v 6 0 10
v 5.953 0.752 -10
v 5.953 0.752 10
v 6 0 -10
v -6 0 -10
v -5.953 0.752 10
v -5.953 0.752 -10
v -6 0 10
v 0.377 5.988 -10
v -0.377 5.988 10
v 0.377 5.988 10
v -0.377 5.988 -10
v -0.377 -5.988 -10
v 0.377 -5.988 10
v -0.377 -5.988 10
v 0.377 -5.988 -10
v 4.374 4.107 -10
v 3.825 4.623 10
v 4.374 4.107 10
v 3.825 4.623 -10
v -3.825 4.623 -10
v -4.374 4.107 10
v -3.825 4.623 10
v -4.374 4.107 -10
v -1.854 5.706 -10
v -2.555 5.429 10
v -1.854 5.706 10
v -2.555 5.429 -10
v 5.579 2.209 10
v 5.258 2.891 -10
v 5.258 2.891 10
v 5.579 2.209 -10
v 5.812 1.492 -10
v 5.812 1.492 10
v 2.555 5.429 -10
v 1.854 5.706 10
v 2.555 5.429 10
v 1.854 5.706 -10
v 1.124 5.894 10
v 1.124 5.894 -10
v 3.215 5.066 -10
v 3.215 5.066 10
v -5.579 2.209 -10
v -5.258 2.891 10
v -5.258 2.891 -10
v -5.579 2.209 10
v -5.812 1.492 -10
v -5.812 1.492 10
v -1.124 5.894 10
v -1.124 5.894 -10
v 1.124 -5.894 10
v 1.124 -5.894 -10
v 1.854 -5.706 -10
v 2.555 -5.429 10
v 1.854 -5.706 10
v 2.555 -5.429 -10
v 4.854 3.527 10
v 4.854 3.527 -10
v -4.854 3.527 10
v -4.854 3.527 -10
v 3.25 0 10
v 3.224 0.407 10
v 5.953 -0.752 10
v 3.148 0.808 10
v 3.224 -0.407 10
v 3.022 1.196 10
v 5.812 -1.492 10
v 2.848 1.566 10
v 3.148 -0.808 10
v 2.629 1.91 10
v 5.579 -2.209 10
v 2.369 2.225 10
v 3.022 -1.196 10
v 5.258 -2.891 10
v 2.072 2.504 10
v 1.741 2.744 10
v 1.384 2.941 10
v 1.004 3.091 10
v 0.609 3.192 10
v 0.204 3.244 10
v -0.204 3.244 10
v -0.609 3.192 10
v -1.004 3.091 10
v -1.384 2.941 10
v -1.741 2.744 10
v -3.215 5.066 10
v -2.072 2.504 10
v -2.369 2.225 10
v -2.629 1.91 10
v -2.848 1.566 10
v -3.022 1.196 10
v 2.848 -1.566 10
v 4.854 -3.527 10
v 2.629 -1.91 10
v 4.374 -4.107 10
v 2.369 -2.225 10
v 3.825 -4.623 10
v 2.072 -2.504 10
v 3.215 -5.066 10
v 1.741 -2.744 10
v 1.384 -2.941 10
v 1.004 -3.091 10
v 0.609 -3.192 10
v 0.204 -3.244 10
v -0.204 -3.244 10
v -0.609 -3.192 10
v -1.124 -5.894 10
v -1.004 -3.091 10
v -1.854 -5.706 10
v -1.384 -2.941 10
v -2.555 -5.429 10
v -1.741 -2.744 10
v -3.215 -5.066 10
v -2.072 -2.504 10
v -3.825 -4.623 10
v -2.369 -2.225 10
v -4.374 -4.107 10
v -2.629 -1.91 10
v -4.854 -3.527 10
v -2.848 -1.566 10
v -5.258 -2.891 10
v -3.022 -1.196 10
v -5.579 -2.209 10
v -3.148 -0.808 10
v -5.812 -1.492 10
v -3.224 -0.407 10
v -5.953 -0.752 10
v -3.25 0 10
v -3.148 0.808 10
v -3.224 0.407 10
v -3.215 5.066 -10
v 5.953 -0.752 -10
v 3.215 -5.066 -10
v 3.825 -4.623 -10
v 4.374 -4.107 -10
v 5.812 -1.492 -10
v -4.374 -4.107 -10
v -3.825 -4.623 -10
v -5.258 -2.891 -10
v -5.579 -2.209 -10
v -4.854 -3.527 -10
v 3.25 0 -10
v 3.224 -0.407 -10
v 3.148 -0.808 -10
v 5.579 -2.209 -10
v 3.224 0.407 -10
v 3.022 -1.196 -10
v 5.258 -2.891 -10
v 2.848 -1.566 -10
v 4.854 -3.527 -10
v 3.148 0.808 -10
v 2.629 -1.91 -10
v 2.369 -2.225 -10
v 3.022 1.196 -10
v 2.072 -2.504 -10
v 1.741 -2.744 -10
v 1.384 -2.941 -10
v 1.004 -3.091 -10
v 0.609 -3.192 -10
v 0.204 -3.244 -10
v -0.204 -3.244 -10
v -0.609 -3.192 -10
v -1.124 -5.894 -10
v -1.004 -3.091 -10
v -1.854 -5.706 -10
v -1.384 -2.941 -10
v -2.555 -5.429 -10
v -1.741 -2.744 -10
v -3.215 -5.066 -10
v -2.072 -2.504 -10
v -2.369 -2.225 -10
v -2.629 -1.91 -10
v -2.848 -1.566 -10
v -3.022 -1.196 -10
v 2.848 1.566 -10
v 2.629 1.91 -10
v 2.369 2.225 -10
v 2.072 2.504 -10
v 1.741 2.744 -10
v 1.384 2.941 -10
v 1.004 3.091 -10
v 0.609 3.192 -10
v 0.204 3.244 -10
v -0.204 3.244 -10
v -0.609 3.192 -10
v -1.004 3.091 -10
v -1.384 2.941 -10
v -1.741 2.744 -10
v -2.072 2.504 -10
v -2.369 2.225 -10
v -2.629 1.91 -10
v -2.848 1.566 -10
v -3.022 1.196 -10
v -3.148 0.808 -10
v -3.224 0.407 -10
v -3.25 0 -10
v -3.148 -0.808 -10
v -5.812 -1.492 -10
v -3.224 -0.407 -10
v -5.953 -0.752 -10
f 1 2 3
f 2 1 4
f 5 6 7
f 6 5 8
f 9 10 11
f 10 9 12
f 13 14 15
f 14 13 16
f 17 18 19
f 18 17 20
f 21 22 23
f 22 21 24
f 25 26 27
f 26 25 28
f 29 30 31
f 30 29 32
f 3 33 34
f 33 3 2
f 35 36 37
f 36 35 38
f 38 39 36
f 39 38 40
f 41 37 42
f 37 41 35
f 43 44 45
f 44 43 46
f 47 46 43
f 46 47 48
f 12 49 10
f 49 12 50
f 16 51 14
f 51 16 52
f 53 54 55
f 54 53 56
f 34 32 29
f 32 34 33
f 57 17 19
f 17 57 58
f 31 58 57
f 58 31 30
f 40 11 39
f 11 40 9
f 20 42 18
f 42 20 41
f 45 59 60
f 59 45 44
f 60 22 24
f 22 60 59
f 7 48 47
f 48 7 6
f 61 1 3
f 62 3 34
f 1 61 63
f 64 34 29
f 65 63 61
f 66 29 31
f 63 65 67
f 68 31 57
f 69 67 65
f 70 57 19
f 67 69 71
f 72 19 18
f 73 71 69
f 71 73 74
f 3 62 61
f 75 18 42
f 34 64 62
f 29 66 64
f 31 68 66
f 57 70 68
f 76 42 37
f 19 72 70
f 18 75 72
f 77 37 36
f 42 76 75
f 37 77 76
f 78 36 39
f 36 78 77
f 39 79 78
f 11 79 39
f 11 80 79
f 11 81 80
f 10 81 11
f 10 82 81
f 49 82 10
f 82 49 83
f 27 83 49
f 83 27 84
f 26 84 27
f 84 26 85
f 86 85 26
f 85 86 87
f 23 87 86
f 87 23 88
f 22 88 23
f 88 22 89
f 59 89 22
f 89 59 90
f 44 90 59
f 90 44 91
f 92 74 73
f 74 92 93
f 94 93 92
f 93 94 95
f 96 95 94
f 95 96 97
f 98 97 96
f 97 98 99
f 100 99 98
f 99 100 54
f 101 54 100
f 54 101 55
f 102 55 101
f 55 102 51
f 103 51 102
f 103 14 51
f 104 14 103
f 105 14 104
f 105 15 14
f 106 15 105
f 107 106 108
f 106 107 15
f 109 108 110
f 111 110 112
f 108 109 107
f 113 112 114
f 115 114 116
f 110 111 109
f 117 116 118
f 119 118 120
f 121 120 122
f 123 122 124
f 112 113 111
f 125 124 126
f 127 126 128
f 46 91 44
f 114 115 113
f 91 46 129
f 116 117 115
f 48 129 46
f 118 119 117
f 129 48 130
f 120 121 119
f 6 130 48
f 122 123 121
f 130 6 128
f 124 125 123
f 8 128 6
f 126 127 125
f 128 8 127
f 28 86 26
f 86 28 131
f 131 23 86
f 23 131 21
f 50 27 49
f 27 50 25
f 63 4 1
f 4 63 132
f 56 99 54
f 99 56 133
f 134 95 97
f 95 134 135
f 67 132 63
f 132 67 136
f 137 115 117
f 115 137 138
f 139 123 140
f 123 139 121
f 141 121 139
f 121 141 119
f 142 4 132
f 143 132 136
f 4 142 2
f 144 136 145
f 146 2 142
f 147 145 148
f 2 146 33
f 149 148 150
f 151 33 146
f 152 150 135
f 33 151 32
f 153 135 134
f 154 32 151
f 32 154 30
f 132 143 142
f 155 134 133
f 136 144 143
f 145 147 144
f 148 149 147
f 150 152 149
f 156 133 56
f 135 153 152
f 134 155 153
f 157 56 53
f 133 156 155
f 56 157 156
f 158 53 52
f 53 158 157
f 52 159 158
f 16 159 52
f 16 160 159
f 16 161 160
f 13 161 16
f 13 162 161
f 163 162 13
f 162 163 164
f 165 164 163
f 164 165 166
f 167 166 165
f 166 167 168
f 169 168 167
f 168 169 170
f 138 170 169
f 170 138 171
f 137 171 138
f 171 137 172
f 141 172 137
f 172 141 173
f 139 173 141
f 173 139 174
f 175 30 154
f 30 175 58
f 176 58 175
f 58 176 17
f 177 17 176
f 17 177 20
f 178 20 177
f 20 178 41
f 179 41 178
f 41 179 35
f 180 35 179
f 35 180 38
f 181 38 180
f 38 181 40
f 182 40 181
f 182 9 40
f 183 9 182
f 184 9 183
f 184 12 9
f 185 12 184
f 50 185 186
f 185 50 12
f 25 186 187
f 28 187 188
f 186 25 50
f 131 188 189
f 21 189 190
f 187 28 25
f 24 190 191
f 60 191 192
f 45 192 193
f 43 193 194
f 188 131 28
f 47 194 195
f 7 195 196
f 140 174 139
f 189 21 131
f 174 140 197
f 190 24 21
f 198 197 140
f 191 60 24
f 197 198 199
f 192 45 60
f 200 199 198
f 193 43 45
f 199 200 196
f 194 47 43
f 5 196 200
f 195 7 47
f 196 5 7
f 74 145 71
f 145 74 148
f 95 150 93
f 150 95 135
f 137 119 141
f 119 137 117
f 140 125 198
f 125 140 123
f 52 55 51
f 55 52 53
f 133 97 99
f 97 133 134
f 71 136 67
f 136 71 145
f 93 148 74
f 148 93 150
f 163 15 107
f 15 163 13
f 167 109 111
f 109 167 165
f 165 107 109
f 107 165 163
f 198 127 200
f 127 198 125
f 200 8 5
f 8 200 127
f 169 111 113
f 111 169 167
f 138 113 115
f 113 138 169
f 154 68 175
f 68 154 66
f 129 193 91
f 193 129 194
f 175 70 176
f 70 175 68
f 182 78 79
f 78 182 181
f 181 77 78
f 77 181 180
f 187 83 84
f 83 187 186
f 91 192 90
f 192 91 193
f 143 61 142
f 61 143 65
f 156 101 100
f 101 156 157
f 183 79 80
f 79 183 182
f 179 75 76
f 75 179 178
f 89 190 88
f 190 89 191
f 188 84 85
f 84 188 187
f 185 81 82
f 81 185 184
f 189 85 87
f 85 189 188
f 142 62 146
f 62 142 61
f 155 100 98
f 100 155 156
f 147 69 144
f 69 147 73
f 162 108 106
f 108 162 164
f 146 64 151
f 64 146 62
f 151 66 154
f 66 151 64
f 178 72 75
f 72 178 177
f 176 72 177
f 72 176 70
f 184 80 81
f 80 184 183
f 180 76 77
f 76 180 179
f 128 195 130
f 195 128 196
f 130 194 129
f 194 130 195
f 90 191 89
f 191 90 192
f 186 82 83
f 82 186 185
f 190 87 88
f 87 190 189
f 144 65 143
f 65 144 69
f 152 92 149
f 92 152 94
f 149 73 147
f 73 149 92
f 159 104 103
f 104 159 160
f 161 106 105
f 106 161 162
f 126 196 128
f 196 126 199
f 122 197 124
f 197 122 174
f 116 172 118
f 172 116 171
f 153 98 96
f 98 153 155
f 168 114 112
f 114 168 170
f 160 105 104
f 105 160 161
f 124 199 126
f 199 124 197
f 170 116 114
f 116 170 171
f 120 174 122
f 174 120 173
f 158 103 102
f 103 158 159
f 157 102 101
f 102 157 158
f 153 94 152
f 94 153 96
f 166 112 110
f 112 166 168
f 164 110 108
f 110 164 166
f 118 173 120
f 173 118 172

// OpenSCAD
$fn = 50;


difference() {
	union() {
		translate(v = [0, 0, -10.0000000000]) {
			cylinder(h = 20, r = 6.0000000000);
		}
	}
	union() {
		translate(v = [0, 0, -100.0000000000]) {
			cylinder(h = 200, r = 3.2500000000);
		}
	}
}
